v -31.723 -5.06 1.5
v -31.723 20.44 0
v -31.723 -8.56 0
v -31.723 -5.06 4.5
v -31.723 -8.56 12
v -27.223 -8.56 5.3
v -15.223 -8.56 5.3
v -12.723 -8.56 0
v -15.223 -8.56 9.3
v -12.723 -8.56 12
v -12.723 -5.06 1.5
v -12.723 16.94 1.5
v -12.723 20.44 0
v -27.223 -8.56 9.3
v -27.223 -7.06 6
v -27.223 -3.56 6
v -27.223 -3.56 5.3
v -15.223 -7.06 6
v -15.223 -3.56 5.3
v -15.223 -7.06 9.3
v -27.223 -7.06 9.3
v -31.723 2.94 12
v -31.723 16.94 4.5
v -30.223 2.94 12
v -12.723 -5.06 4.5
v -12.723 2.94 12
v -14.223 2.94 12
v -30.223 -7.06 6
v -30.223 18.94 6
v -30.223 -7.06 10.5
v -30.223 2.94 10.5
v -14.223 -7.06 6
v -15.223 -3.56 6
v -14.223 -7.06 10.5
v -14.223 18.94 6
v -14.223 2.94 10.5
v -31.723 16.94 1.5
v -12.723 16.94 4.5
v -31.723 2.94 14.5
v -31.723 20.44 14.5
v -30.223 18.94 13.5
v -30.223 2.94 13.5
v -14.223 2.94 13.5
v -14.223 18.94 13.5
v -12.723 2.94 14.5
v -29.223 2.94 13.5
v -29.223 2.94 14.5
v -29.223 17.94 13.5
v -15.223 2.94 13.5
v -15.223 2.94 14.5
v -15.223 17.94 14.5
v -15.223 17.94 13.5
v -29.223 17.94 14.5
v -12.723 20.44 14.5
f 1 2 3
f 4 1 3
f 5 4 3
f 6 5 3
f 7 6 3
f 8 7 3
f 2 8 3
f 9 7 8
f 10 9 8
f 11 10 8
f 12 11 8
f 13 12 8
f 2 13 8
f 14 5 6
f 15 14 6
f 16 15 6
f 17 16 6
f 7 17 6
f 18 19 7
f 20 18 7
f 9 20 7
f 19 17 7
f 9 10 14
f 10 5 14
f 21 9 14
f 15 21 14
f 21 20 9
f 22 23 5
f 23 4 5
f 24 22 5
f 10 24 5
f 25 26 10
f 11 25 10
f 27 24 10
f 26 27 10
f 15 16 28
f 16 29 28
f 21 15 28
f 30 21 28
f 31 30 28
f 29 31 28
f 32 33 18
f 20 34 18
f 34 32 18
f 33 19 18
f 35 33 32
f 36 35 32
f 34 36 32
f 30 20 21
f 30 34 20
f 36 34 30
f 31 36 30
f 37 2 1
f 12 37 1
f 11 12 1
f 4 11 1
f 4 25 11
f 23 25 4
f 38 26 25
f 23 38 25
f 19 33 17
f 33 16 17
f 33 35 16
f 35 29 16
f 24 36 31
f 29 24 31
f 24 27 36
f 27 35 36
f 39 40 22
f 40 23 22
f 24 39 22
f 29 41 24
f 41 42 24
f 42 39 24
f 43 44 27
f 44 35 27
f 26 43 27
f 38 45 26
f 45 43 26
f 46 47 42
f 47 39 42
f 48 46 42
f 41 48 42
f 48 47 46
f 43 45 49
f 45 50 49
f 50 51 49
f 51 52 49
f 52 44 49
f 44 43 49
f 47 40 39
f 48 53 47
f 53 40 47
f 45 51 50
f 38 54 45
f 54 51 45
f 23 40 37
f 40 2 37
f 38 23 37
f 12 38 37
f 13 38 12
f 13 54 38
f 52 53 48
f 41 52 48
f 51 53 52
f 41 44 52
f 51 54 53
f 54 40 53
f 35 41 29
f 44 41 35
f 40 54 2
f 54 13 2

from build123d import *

# Parameters (mm, degrees)
CROQUIS1_W              = 19
CROQUIS1_H              = 29
SALIENTE_EXTRUIR1_DEPTH = 6
SALIENTE_EXTRUIR2_DEPTH = 4.5
CROQUIS3_W              = 19
CROQUIS3_H              = 11.5
SALIENTE_EXTRUIR3_DEPTH = 1.5
CROQUIS4_W              = 12
CROQUIS4_H              = 4
CORTAR_EXTRUIR1_DEPTH   = 5
SALIENTE_EXTRUIR4_DEPTH = 7.5
SALIENTE_EXTRUIR5_DEPTH = 1
CORTAR_EXTRUIR2_START   = -19
CROQUIS7_W              = 3
CROQUIS7_H              = 22
CORTAR_EXTRUIR2_DEPTH   = 19


with BuildPart() as part:
    # Croquis1 → Saliente-Extruir1 (new body)
    with BuildSketch(Plane.XY):
        with Locations((-22.223018523, 5.939759036)):
            Rectangle(CROQUIS1_W, CROQUIS1_H)
    extrude(amount=SALIENTE_EXTRUIR1_DEPTH)

    # Croquis2 → Saliente-Extruir2 (add)
    with BuildSketch(Plane.XY.offset(6)):
        Polygon((-31.723018523, -8.560240964), (-31.723018523, 2.939759036), (-30.223018523, 2.939759036), (-30.223018523, -7.060240964), (-14.223018523, -7.060240964), (-14.223018523, 2.939759036), (-12.723018523, 2.939759036), (-12.723018523, -8.560240964), align=None)
    extrude(amount=SALIENTE_EXTRUIR2_DEPTH)

    # Croquis3 → Saliente-Extruir3 (add)
    with BuildSketch(Plane.XY.offset(10.5)):
        with Locations((-22.223018523, -2.810240964)):
            Rectangle(CROQUIS3_W, CROQUIS3_H)
    extrude(amount=SALIENTE_EXTRUIR3_DEPTH)

    # Croquis4 → Cortar-Extruir1 (cut)
    with BuildSketch(Plane.XZ.offset(8.560240964)):
        with Locations((-21.223018523, 7.3)):
            Rectangle(CROQUIS4_W, CROQUIS4_H)
    extrude(amount=-CORTAR_EXTRUIR1_DEPTH, mode=Mode.SUBTRACT)

    # Croquis5 → Saliente-Extruir4 (add)
    with BuildSketch(Plane.XY.offset(6)):
        Polygon((-30.223018523, 2.939759036), (-31.723018523, 2.939759036), (-31.723018523, 20.439759036), (-12.723018523, 20.439759036), (-12.723018523, 2.939759036), (-14.223018523, 2.939759036), (-14.223018523, 18.939759036), (-30.223018523, 18.939759036), align=None)
    extrude(amount=SALIENTE_EXTRUIR4_DEPTH)

    # Croquis6 → Saliente-Extruir5 (add)
    with BuildSketch(Plane.XY.offset(13.5)):
        Polygon((-29.223018523, 2.939759036), (-31.723018523, 2.939759036), (-31.723018523, 20.439759036), (-12.723018523, 20.439759036), (-12.723018523, 2.939759036), (-15.223018523, 2.939759036), (-15.223018523, 17.939759036), (-29.223018523, 17.939759036), align=None)
    extrude(amount=SALIENTE_EXTRUIR5_DEPTH)

    # Croquis7 → Cortar-Extruir2 (cut)
    with BuildSketch(Plane(origin=(-12.723018523, 0, 0), x_dir=(0, 0, -1), z_dir=(1, 0, 0)).offset(CORTAR_EXTRUIR2_START)):
        with Locations((-3, 5.939759036)):
            Rectangle(CROQUIS7_W, CROQUIS7_H)
    extrude(amount=CORTAR_EXTRUIR2_DEPTH, mode=Mode.SUBTRACT)


solid = part.part
